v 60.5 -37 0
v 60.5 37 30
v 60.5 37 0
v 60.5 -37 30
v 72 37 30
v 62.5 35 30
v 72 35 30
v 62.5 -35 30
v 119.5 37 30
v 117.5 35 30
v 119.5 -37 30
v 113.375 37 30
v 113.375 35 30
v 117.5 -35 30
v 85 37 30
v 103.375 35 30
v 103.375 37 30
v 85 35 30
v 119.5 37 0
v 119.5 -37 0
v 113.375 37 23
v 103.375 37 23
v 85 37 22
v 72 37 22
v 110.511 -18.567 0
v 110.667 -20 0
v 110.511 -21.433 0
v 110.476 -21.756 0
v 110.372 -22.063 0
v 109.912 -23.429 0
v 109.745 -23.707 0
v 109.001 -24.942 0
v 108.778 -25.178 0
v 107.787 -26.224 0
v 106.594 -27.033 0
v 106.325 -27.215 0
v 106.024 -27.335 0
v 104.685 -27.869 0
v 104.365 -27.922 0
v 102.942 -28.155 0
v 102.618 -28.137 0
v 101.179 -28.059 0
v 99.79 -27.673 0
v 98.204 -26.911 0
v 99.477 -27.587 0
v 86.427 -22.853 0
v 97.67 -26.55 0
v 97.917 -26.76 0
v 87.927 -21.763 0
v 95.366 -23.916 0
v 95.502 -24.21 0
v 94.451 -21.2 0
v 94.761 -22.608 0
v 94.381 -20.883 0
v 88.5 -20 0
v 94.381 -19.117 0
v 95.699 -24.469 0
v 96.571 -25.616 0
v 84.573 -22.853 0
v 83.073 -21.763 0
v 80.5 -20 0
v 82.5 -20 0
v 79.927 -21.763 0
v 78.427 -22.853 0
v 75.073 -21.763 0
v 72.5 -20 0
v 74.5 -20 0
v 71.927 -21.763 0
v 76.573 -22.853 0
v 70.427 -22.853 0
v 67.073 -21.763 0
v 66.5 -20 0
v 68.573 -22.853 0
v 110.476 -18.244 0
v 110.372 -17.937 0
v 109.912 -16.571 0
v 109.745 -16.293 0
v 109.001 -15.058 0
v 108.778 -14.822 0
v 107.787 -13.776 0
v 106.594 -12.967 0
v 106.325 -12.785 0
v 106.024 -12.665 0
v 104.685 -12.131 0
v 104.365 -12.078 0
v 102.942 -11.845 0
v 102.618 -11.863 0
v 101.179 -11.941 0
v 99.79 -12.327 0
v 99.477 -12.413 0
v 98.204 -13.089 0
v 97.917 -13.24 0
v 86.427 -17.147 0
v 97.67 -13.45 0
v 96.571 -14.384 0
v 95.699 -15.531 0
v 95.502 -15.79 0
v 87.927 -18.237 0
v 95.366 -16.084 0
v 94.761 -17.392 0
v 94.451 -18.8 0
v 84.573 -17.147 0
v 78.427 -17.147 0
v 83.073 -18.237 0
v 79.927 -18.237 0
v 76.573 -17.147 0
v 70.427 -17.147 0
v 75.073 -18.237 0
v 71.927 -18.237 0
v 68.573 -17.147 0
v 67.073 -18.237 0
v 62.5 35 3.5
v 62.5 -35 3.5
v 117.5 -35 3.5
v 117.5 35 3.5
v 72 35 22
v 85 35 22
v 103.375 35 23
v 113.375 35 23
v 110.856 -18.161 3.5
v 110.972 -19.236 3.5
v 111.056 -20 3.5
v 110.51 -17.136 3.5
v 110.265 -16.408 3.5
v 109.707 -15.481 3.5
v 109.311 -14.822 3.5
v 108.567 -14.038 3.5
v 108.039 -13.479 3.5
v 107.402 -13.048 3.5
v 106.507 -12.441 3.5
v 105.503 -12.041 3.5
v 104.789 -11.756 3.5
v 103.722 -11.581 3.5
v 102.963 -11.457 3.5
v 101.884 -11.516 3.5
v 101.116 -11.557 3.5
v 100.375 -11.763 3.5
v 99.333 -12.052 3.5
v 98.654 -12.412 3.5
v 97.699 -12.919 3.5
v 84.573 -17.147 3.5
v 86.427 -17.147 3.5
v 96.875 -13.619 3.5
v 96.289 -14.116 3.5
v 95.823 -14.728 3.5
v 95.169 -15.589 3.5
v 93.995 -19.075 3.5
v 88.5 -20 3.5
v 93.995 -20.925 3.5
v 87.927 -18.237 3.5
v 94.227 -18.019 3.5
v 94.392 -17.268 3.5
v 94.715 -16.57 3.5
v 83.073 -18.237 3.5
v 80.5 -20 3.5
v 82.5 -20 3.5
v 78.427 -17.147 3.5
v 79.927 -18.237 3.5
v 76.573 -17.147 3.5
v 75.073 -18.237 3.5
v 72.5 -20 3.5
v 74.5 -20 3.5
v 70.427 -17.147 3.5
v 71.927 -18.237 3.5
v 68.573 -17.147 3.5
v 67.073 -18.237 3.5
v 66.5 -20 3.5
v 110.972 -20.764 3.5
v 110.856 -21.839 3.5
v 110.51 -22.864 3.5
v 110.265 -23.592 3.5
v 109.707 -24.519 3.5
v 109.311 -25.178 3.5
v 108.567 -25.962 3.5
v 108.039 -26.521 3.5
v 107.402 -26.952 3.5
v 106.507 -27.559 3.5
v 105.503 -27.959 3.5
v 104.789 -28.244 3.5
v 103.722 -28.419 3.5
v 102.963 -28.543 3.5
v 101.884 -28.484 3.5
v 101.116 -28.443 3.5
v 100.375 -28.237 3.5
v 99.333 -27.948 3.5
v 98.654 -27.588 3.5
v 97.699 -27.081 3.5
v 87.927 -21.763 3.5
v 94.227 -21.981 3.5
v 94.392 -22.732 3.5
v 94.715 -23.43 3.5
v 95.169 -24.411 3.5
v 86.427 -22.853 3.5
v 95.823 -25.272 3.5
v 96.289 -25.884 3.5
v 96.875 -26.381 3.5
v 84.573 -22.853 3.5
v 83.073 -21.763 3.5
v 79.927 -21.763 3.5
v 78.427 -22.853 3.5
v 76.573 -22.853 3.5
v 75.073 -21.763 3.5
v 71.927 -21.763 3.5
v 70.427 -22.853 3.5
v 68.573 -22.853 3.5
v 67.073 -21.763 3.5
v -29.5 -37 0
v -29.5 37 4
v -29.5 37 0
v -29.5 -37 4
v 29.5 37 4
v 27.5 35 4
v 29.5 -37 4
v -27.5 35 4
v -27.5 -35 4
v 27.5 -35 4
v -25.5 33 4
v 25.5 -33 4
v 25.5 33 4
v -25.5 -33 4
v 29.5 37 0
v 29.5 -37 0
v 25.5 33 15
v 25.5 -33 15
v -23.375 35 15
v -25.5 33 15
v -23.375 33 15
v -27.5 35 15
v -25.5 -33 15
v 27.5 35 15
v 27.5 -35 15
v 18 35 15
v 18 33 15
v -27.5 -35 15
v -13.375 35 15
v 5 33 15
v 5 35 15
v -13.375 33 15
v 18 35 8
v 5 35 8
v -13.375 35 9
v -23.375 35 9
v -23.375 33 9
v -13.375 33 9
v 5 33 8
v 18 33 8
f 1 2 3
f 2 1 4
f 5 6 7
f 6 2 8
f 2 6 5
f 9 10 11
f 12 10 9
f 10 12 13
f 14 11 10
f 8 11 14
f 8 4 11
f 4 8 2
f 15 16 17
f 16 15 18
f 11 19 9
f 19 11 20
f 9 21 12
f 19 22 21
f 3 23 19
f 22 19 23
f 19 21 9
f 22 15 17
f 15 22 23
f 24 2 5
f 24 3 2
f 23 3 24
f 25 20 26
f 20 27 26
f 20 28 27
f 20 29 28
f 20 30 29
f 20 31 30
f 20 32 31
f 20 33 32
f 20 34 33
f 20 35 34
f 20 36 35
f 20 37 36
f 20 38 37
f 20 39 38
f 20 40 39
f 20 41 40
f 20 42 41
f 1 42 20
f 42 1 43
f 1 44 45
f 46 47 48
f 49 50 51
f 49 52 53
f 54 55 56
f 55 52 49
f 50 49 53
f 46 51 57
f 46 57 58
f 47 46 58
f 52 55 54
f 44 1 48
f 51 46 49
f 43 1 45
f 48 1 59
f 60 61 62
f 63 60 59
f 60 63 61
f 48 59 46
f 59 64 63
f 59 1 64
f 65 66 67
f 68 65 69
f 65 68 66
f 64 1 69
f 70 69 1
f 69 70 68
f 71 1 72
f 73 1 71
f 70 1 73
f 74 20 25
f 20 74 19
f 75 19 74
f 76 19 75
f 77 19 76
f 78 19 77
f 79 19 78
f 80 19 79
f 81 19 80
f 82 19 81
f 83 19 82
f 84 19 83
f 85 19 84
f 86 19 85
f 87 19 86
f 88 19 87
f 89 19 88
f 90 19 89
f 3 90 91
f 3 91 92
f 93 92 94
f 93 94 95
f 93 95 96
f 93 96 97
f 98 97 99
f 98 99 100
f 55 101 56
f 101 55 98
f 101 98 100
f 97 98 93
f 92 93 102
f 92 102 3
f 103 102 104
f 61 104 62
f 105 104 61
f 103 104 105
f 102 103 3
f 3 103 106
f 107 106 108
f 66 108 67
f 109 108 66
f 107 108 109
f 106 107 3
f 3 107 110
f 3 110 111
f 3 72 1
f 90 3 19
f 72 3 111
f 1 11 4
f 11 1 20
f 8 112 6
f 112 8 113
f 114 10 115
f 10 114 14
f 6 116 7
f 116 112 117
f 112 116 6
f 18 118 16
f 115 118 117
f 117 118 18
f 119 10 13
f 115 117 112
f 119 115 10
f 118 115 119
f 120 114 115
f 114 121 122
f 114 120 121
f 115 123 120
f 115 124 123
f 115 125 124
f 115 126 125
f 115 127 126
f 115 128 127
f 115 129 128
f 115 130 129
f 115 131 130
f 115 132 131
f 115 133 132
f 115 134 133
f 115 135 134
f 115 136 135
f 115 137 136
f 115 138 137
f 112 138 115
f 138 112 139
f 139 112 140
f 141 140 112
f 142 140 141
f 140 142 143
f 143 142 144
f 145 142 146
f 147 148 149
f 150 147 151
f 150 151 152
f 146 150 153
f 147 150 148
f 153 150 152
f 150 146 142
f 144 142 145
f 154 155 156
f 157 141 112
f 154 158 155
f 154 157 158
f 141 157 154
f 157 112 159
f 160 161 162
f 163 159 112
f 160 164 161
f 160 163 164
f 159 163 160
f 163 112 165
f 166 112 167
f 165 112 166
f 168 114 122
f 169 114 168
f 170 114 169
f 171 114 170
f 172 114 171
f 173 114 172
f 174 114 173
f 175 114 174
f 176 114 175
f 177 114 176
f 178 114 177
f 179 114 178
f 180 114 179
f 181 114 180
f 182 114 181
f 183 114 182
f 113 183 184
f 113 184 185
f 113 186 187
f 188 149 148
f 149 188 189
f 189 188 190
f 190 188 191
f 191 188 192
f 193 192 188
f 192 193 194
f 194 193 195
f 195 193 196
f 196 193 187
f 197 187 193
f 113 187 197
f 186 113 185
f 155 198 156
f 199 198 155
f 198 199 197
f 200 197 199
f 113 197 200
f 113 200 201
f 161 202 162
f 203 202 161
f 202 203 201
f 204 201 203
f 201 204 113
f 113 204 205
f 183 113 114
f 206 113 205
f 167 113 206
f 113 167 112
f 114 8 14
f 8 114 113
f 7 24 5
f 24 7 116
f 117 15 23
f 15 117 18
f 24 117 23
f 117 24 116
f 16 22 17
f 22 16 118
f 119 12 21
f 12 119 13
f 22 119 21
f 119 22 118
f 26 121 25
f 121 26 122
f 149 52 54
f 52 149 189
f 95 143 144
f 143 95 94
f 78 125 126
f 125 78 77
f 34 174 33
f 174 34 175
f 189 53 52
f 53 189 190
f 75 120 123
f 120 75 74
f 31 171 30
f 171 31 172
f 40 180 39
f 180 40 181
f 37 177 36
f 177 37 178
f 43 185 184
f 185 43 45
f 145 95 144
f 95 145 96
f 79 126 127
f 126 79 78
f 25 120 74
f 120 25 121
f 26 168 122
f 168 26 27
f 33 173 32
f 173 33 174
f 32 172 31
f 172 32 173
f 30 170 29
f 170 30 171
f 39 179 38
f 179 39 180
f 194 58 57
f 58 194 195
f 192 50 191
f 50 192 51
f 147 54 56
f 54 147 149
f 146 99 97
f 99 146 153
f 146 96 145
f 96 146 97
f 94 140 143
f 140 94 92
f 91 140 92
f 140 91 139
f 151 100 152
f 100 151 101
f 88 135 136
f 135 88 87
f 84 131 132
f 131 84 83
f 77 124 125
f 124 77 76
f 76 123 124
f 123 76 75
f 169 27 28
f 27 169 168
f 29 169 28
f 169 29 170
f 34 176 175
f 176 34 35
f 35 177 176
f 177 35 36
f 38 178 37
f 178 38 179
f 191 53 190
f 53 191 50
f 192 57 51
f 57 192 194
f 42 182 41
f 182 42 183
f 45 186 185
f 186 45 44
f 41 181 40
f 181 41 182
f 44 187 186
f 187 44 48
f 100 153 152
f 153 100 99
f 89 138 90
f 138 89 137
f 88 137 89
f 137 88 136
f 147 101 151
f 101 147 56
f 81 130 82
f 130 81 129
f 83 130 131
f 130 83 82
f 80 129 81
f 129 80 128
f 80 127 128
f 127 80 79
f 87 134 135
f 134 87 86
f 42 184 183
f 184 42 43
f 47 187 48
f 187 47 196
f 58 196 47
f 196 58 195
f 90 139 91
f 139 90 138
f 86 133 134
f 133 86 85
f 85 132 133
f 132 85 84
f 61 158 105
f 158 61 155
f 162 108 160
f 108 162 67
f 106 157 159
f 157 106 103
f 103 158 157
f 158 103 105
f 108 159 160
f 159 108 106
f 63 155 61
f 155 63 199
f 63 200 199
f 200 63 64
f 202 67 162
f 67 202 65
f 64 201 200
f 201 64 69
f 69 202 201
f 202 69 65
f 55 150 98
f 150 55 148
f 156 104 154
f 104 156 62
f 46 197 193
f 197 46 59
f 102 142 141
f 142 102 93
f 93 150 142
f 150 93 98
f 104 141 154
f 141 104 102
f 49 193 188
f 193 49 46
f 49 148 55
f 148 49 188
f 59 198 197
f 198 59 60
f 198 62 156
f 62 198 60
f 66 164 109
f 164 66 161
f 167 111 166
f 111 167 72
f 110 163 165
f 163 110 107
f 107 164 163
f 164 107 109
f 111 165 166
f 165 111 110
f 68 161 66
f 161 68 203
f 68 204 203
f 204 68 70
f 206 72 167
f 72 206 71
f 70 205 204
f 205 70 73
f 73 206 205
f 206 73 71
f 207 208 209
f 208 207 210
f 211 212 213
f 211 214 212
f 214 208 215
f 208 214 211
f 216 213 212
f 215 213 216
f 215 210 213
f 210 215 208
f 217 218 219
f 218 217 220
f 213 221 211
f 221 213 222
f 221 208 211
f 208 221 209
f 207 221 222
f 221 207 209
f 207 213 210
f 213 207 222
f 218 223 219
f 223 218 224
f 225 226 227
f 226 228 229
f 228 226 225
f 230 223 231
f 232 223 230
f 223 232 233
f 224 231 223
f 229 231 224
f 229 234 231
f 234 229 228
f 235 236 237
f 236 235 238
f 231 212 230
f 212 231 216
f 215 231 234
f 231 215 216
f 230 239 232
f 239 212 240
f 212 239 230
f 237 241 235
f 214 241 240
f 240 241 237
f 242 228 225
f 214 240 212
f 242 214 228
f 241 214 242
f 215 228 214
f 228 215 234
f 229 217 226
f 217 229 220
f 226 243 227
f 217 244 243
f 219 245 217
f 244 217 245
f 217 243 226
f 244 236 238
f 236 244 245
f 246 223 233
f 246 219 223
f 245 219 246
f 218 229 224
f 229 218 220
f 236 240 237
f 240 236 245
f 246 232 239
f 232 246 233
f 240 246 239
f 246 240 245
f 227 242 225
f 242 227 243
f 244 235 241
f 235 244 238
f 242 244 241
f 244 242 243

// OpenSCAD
 translate([90, 0, 15])
    difference() {
        cube([59,74,30], true);
        translate([0,0,3])
            cube([55,70,29],true);
        translate([-11.5,37,15])
            cube([13, 10, 16], true);
        translate([18.375, 37, 15])
            cube([10, 10, 14], true);
        translate([12.5,-20,-12])
            cylinder(9, 8, 9, true);
        translate([-12.5,-20,-12])
            cylinder(9, 3, 3, true);
        translate([-4.5,-20,-12])
            cylinder(9, 3, 3, true);
        translate([-20.5,-20,-12])
            cylinder(9, 3, 3, true);
        
        
    }

translate([0, 0, 2])
    difference(){
        union(){
            cube([59,74,4], true);
            translate([26.5, 0, 7])
                cube([2,70,12], true);
            translate([-26.5, 0, 7])
                cube([2,70,12], true);
            translate([0, 34, 7])
                cube([55,2,12], true);
            translate([0, -34, 7])
                cube([55,2,12], true);
        }
        translate([11.5,37,15])
            cube([13, 10, 18], true);
        translate([-18.375, 37, 15])
            cube([10, 10, 16], true);
    }
